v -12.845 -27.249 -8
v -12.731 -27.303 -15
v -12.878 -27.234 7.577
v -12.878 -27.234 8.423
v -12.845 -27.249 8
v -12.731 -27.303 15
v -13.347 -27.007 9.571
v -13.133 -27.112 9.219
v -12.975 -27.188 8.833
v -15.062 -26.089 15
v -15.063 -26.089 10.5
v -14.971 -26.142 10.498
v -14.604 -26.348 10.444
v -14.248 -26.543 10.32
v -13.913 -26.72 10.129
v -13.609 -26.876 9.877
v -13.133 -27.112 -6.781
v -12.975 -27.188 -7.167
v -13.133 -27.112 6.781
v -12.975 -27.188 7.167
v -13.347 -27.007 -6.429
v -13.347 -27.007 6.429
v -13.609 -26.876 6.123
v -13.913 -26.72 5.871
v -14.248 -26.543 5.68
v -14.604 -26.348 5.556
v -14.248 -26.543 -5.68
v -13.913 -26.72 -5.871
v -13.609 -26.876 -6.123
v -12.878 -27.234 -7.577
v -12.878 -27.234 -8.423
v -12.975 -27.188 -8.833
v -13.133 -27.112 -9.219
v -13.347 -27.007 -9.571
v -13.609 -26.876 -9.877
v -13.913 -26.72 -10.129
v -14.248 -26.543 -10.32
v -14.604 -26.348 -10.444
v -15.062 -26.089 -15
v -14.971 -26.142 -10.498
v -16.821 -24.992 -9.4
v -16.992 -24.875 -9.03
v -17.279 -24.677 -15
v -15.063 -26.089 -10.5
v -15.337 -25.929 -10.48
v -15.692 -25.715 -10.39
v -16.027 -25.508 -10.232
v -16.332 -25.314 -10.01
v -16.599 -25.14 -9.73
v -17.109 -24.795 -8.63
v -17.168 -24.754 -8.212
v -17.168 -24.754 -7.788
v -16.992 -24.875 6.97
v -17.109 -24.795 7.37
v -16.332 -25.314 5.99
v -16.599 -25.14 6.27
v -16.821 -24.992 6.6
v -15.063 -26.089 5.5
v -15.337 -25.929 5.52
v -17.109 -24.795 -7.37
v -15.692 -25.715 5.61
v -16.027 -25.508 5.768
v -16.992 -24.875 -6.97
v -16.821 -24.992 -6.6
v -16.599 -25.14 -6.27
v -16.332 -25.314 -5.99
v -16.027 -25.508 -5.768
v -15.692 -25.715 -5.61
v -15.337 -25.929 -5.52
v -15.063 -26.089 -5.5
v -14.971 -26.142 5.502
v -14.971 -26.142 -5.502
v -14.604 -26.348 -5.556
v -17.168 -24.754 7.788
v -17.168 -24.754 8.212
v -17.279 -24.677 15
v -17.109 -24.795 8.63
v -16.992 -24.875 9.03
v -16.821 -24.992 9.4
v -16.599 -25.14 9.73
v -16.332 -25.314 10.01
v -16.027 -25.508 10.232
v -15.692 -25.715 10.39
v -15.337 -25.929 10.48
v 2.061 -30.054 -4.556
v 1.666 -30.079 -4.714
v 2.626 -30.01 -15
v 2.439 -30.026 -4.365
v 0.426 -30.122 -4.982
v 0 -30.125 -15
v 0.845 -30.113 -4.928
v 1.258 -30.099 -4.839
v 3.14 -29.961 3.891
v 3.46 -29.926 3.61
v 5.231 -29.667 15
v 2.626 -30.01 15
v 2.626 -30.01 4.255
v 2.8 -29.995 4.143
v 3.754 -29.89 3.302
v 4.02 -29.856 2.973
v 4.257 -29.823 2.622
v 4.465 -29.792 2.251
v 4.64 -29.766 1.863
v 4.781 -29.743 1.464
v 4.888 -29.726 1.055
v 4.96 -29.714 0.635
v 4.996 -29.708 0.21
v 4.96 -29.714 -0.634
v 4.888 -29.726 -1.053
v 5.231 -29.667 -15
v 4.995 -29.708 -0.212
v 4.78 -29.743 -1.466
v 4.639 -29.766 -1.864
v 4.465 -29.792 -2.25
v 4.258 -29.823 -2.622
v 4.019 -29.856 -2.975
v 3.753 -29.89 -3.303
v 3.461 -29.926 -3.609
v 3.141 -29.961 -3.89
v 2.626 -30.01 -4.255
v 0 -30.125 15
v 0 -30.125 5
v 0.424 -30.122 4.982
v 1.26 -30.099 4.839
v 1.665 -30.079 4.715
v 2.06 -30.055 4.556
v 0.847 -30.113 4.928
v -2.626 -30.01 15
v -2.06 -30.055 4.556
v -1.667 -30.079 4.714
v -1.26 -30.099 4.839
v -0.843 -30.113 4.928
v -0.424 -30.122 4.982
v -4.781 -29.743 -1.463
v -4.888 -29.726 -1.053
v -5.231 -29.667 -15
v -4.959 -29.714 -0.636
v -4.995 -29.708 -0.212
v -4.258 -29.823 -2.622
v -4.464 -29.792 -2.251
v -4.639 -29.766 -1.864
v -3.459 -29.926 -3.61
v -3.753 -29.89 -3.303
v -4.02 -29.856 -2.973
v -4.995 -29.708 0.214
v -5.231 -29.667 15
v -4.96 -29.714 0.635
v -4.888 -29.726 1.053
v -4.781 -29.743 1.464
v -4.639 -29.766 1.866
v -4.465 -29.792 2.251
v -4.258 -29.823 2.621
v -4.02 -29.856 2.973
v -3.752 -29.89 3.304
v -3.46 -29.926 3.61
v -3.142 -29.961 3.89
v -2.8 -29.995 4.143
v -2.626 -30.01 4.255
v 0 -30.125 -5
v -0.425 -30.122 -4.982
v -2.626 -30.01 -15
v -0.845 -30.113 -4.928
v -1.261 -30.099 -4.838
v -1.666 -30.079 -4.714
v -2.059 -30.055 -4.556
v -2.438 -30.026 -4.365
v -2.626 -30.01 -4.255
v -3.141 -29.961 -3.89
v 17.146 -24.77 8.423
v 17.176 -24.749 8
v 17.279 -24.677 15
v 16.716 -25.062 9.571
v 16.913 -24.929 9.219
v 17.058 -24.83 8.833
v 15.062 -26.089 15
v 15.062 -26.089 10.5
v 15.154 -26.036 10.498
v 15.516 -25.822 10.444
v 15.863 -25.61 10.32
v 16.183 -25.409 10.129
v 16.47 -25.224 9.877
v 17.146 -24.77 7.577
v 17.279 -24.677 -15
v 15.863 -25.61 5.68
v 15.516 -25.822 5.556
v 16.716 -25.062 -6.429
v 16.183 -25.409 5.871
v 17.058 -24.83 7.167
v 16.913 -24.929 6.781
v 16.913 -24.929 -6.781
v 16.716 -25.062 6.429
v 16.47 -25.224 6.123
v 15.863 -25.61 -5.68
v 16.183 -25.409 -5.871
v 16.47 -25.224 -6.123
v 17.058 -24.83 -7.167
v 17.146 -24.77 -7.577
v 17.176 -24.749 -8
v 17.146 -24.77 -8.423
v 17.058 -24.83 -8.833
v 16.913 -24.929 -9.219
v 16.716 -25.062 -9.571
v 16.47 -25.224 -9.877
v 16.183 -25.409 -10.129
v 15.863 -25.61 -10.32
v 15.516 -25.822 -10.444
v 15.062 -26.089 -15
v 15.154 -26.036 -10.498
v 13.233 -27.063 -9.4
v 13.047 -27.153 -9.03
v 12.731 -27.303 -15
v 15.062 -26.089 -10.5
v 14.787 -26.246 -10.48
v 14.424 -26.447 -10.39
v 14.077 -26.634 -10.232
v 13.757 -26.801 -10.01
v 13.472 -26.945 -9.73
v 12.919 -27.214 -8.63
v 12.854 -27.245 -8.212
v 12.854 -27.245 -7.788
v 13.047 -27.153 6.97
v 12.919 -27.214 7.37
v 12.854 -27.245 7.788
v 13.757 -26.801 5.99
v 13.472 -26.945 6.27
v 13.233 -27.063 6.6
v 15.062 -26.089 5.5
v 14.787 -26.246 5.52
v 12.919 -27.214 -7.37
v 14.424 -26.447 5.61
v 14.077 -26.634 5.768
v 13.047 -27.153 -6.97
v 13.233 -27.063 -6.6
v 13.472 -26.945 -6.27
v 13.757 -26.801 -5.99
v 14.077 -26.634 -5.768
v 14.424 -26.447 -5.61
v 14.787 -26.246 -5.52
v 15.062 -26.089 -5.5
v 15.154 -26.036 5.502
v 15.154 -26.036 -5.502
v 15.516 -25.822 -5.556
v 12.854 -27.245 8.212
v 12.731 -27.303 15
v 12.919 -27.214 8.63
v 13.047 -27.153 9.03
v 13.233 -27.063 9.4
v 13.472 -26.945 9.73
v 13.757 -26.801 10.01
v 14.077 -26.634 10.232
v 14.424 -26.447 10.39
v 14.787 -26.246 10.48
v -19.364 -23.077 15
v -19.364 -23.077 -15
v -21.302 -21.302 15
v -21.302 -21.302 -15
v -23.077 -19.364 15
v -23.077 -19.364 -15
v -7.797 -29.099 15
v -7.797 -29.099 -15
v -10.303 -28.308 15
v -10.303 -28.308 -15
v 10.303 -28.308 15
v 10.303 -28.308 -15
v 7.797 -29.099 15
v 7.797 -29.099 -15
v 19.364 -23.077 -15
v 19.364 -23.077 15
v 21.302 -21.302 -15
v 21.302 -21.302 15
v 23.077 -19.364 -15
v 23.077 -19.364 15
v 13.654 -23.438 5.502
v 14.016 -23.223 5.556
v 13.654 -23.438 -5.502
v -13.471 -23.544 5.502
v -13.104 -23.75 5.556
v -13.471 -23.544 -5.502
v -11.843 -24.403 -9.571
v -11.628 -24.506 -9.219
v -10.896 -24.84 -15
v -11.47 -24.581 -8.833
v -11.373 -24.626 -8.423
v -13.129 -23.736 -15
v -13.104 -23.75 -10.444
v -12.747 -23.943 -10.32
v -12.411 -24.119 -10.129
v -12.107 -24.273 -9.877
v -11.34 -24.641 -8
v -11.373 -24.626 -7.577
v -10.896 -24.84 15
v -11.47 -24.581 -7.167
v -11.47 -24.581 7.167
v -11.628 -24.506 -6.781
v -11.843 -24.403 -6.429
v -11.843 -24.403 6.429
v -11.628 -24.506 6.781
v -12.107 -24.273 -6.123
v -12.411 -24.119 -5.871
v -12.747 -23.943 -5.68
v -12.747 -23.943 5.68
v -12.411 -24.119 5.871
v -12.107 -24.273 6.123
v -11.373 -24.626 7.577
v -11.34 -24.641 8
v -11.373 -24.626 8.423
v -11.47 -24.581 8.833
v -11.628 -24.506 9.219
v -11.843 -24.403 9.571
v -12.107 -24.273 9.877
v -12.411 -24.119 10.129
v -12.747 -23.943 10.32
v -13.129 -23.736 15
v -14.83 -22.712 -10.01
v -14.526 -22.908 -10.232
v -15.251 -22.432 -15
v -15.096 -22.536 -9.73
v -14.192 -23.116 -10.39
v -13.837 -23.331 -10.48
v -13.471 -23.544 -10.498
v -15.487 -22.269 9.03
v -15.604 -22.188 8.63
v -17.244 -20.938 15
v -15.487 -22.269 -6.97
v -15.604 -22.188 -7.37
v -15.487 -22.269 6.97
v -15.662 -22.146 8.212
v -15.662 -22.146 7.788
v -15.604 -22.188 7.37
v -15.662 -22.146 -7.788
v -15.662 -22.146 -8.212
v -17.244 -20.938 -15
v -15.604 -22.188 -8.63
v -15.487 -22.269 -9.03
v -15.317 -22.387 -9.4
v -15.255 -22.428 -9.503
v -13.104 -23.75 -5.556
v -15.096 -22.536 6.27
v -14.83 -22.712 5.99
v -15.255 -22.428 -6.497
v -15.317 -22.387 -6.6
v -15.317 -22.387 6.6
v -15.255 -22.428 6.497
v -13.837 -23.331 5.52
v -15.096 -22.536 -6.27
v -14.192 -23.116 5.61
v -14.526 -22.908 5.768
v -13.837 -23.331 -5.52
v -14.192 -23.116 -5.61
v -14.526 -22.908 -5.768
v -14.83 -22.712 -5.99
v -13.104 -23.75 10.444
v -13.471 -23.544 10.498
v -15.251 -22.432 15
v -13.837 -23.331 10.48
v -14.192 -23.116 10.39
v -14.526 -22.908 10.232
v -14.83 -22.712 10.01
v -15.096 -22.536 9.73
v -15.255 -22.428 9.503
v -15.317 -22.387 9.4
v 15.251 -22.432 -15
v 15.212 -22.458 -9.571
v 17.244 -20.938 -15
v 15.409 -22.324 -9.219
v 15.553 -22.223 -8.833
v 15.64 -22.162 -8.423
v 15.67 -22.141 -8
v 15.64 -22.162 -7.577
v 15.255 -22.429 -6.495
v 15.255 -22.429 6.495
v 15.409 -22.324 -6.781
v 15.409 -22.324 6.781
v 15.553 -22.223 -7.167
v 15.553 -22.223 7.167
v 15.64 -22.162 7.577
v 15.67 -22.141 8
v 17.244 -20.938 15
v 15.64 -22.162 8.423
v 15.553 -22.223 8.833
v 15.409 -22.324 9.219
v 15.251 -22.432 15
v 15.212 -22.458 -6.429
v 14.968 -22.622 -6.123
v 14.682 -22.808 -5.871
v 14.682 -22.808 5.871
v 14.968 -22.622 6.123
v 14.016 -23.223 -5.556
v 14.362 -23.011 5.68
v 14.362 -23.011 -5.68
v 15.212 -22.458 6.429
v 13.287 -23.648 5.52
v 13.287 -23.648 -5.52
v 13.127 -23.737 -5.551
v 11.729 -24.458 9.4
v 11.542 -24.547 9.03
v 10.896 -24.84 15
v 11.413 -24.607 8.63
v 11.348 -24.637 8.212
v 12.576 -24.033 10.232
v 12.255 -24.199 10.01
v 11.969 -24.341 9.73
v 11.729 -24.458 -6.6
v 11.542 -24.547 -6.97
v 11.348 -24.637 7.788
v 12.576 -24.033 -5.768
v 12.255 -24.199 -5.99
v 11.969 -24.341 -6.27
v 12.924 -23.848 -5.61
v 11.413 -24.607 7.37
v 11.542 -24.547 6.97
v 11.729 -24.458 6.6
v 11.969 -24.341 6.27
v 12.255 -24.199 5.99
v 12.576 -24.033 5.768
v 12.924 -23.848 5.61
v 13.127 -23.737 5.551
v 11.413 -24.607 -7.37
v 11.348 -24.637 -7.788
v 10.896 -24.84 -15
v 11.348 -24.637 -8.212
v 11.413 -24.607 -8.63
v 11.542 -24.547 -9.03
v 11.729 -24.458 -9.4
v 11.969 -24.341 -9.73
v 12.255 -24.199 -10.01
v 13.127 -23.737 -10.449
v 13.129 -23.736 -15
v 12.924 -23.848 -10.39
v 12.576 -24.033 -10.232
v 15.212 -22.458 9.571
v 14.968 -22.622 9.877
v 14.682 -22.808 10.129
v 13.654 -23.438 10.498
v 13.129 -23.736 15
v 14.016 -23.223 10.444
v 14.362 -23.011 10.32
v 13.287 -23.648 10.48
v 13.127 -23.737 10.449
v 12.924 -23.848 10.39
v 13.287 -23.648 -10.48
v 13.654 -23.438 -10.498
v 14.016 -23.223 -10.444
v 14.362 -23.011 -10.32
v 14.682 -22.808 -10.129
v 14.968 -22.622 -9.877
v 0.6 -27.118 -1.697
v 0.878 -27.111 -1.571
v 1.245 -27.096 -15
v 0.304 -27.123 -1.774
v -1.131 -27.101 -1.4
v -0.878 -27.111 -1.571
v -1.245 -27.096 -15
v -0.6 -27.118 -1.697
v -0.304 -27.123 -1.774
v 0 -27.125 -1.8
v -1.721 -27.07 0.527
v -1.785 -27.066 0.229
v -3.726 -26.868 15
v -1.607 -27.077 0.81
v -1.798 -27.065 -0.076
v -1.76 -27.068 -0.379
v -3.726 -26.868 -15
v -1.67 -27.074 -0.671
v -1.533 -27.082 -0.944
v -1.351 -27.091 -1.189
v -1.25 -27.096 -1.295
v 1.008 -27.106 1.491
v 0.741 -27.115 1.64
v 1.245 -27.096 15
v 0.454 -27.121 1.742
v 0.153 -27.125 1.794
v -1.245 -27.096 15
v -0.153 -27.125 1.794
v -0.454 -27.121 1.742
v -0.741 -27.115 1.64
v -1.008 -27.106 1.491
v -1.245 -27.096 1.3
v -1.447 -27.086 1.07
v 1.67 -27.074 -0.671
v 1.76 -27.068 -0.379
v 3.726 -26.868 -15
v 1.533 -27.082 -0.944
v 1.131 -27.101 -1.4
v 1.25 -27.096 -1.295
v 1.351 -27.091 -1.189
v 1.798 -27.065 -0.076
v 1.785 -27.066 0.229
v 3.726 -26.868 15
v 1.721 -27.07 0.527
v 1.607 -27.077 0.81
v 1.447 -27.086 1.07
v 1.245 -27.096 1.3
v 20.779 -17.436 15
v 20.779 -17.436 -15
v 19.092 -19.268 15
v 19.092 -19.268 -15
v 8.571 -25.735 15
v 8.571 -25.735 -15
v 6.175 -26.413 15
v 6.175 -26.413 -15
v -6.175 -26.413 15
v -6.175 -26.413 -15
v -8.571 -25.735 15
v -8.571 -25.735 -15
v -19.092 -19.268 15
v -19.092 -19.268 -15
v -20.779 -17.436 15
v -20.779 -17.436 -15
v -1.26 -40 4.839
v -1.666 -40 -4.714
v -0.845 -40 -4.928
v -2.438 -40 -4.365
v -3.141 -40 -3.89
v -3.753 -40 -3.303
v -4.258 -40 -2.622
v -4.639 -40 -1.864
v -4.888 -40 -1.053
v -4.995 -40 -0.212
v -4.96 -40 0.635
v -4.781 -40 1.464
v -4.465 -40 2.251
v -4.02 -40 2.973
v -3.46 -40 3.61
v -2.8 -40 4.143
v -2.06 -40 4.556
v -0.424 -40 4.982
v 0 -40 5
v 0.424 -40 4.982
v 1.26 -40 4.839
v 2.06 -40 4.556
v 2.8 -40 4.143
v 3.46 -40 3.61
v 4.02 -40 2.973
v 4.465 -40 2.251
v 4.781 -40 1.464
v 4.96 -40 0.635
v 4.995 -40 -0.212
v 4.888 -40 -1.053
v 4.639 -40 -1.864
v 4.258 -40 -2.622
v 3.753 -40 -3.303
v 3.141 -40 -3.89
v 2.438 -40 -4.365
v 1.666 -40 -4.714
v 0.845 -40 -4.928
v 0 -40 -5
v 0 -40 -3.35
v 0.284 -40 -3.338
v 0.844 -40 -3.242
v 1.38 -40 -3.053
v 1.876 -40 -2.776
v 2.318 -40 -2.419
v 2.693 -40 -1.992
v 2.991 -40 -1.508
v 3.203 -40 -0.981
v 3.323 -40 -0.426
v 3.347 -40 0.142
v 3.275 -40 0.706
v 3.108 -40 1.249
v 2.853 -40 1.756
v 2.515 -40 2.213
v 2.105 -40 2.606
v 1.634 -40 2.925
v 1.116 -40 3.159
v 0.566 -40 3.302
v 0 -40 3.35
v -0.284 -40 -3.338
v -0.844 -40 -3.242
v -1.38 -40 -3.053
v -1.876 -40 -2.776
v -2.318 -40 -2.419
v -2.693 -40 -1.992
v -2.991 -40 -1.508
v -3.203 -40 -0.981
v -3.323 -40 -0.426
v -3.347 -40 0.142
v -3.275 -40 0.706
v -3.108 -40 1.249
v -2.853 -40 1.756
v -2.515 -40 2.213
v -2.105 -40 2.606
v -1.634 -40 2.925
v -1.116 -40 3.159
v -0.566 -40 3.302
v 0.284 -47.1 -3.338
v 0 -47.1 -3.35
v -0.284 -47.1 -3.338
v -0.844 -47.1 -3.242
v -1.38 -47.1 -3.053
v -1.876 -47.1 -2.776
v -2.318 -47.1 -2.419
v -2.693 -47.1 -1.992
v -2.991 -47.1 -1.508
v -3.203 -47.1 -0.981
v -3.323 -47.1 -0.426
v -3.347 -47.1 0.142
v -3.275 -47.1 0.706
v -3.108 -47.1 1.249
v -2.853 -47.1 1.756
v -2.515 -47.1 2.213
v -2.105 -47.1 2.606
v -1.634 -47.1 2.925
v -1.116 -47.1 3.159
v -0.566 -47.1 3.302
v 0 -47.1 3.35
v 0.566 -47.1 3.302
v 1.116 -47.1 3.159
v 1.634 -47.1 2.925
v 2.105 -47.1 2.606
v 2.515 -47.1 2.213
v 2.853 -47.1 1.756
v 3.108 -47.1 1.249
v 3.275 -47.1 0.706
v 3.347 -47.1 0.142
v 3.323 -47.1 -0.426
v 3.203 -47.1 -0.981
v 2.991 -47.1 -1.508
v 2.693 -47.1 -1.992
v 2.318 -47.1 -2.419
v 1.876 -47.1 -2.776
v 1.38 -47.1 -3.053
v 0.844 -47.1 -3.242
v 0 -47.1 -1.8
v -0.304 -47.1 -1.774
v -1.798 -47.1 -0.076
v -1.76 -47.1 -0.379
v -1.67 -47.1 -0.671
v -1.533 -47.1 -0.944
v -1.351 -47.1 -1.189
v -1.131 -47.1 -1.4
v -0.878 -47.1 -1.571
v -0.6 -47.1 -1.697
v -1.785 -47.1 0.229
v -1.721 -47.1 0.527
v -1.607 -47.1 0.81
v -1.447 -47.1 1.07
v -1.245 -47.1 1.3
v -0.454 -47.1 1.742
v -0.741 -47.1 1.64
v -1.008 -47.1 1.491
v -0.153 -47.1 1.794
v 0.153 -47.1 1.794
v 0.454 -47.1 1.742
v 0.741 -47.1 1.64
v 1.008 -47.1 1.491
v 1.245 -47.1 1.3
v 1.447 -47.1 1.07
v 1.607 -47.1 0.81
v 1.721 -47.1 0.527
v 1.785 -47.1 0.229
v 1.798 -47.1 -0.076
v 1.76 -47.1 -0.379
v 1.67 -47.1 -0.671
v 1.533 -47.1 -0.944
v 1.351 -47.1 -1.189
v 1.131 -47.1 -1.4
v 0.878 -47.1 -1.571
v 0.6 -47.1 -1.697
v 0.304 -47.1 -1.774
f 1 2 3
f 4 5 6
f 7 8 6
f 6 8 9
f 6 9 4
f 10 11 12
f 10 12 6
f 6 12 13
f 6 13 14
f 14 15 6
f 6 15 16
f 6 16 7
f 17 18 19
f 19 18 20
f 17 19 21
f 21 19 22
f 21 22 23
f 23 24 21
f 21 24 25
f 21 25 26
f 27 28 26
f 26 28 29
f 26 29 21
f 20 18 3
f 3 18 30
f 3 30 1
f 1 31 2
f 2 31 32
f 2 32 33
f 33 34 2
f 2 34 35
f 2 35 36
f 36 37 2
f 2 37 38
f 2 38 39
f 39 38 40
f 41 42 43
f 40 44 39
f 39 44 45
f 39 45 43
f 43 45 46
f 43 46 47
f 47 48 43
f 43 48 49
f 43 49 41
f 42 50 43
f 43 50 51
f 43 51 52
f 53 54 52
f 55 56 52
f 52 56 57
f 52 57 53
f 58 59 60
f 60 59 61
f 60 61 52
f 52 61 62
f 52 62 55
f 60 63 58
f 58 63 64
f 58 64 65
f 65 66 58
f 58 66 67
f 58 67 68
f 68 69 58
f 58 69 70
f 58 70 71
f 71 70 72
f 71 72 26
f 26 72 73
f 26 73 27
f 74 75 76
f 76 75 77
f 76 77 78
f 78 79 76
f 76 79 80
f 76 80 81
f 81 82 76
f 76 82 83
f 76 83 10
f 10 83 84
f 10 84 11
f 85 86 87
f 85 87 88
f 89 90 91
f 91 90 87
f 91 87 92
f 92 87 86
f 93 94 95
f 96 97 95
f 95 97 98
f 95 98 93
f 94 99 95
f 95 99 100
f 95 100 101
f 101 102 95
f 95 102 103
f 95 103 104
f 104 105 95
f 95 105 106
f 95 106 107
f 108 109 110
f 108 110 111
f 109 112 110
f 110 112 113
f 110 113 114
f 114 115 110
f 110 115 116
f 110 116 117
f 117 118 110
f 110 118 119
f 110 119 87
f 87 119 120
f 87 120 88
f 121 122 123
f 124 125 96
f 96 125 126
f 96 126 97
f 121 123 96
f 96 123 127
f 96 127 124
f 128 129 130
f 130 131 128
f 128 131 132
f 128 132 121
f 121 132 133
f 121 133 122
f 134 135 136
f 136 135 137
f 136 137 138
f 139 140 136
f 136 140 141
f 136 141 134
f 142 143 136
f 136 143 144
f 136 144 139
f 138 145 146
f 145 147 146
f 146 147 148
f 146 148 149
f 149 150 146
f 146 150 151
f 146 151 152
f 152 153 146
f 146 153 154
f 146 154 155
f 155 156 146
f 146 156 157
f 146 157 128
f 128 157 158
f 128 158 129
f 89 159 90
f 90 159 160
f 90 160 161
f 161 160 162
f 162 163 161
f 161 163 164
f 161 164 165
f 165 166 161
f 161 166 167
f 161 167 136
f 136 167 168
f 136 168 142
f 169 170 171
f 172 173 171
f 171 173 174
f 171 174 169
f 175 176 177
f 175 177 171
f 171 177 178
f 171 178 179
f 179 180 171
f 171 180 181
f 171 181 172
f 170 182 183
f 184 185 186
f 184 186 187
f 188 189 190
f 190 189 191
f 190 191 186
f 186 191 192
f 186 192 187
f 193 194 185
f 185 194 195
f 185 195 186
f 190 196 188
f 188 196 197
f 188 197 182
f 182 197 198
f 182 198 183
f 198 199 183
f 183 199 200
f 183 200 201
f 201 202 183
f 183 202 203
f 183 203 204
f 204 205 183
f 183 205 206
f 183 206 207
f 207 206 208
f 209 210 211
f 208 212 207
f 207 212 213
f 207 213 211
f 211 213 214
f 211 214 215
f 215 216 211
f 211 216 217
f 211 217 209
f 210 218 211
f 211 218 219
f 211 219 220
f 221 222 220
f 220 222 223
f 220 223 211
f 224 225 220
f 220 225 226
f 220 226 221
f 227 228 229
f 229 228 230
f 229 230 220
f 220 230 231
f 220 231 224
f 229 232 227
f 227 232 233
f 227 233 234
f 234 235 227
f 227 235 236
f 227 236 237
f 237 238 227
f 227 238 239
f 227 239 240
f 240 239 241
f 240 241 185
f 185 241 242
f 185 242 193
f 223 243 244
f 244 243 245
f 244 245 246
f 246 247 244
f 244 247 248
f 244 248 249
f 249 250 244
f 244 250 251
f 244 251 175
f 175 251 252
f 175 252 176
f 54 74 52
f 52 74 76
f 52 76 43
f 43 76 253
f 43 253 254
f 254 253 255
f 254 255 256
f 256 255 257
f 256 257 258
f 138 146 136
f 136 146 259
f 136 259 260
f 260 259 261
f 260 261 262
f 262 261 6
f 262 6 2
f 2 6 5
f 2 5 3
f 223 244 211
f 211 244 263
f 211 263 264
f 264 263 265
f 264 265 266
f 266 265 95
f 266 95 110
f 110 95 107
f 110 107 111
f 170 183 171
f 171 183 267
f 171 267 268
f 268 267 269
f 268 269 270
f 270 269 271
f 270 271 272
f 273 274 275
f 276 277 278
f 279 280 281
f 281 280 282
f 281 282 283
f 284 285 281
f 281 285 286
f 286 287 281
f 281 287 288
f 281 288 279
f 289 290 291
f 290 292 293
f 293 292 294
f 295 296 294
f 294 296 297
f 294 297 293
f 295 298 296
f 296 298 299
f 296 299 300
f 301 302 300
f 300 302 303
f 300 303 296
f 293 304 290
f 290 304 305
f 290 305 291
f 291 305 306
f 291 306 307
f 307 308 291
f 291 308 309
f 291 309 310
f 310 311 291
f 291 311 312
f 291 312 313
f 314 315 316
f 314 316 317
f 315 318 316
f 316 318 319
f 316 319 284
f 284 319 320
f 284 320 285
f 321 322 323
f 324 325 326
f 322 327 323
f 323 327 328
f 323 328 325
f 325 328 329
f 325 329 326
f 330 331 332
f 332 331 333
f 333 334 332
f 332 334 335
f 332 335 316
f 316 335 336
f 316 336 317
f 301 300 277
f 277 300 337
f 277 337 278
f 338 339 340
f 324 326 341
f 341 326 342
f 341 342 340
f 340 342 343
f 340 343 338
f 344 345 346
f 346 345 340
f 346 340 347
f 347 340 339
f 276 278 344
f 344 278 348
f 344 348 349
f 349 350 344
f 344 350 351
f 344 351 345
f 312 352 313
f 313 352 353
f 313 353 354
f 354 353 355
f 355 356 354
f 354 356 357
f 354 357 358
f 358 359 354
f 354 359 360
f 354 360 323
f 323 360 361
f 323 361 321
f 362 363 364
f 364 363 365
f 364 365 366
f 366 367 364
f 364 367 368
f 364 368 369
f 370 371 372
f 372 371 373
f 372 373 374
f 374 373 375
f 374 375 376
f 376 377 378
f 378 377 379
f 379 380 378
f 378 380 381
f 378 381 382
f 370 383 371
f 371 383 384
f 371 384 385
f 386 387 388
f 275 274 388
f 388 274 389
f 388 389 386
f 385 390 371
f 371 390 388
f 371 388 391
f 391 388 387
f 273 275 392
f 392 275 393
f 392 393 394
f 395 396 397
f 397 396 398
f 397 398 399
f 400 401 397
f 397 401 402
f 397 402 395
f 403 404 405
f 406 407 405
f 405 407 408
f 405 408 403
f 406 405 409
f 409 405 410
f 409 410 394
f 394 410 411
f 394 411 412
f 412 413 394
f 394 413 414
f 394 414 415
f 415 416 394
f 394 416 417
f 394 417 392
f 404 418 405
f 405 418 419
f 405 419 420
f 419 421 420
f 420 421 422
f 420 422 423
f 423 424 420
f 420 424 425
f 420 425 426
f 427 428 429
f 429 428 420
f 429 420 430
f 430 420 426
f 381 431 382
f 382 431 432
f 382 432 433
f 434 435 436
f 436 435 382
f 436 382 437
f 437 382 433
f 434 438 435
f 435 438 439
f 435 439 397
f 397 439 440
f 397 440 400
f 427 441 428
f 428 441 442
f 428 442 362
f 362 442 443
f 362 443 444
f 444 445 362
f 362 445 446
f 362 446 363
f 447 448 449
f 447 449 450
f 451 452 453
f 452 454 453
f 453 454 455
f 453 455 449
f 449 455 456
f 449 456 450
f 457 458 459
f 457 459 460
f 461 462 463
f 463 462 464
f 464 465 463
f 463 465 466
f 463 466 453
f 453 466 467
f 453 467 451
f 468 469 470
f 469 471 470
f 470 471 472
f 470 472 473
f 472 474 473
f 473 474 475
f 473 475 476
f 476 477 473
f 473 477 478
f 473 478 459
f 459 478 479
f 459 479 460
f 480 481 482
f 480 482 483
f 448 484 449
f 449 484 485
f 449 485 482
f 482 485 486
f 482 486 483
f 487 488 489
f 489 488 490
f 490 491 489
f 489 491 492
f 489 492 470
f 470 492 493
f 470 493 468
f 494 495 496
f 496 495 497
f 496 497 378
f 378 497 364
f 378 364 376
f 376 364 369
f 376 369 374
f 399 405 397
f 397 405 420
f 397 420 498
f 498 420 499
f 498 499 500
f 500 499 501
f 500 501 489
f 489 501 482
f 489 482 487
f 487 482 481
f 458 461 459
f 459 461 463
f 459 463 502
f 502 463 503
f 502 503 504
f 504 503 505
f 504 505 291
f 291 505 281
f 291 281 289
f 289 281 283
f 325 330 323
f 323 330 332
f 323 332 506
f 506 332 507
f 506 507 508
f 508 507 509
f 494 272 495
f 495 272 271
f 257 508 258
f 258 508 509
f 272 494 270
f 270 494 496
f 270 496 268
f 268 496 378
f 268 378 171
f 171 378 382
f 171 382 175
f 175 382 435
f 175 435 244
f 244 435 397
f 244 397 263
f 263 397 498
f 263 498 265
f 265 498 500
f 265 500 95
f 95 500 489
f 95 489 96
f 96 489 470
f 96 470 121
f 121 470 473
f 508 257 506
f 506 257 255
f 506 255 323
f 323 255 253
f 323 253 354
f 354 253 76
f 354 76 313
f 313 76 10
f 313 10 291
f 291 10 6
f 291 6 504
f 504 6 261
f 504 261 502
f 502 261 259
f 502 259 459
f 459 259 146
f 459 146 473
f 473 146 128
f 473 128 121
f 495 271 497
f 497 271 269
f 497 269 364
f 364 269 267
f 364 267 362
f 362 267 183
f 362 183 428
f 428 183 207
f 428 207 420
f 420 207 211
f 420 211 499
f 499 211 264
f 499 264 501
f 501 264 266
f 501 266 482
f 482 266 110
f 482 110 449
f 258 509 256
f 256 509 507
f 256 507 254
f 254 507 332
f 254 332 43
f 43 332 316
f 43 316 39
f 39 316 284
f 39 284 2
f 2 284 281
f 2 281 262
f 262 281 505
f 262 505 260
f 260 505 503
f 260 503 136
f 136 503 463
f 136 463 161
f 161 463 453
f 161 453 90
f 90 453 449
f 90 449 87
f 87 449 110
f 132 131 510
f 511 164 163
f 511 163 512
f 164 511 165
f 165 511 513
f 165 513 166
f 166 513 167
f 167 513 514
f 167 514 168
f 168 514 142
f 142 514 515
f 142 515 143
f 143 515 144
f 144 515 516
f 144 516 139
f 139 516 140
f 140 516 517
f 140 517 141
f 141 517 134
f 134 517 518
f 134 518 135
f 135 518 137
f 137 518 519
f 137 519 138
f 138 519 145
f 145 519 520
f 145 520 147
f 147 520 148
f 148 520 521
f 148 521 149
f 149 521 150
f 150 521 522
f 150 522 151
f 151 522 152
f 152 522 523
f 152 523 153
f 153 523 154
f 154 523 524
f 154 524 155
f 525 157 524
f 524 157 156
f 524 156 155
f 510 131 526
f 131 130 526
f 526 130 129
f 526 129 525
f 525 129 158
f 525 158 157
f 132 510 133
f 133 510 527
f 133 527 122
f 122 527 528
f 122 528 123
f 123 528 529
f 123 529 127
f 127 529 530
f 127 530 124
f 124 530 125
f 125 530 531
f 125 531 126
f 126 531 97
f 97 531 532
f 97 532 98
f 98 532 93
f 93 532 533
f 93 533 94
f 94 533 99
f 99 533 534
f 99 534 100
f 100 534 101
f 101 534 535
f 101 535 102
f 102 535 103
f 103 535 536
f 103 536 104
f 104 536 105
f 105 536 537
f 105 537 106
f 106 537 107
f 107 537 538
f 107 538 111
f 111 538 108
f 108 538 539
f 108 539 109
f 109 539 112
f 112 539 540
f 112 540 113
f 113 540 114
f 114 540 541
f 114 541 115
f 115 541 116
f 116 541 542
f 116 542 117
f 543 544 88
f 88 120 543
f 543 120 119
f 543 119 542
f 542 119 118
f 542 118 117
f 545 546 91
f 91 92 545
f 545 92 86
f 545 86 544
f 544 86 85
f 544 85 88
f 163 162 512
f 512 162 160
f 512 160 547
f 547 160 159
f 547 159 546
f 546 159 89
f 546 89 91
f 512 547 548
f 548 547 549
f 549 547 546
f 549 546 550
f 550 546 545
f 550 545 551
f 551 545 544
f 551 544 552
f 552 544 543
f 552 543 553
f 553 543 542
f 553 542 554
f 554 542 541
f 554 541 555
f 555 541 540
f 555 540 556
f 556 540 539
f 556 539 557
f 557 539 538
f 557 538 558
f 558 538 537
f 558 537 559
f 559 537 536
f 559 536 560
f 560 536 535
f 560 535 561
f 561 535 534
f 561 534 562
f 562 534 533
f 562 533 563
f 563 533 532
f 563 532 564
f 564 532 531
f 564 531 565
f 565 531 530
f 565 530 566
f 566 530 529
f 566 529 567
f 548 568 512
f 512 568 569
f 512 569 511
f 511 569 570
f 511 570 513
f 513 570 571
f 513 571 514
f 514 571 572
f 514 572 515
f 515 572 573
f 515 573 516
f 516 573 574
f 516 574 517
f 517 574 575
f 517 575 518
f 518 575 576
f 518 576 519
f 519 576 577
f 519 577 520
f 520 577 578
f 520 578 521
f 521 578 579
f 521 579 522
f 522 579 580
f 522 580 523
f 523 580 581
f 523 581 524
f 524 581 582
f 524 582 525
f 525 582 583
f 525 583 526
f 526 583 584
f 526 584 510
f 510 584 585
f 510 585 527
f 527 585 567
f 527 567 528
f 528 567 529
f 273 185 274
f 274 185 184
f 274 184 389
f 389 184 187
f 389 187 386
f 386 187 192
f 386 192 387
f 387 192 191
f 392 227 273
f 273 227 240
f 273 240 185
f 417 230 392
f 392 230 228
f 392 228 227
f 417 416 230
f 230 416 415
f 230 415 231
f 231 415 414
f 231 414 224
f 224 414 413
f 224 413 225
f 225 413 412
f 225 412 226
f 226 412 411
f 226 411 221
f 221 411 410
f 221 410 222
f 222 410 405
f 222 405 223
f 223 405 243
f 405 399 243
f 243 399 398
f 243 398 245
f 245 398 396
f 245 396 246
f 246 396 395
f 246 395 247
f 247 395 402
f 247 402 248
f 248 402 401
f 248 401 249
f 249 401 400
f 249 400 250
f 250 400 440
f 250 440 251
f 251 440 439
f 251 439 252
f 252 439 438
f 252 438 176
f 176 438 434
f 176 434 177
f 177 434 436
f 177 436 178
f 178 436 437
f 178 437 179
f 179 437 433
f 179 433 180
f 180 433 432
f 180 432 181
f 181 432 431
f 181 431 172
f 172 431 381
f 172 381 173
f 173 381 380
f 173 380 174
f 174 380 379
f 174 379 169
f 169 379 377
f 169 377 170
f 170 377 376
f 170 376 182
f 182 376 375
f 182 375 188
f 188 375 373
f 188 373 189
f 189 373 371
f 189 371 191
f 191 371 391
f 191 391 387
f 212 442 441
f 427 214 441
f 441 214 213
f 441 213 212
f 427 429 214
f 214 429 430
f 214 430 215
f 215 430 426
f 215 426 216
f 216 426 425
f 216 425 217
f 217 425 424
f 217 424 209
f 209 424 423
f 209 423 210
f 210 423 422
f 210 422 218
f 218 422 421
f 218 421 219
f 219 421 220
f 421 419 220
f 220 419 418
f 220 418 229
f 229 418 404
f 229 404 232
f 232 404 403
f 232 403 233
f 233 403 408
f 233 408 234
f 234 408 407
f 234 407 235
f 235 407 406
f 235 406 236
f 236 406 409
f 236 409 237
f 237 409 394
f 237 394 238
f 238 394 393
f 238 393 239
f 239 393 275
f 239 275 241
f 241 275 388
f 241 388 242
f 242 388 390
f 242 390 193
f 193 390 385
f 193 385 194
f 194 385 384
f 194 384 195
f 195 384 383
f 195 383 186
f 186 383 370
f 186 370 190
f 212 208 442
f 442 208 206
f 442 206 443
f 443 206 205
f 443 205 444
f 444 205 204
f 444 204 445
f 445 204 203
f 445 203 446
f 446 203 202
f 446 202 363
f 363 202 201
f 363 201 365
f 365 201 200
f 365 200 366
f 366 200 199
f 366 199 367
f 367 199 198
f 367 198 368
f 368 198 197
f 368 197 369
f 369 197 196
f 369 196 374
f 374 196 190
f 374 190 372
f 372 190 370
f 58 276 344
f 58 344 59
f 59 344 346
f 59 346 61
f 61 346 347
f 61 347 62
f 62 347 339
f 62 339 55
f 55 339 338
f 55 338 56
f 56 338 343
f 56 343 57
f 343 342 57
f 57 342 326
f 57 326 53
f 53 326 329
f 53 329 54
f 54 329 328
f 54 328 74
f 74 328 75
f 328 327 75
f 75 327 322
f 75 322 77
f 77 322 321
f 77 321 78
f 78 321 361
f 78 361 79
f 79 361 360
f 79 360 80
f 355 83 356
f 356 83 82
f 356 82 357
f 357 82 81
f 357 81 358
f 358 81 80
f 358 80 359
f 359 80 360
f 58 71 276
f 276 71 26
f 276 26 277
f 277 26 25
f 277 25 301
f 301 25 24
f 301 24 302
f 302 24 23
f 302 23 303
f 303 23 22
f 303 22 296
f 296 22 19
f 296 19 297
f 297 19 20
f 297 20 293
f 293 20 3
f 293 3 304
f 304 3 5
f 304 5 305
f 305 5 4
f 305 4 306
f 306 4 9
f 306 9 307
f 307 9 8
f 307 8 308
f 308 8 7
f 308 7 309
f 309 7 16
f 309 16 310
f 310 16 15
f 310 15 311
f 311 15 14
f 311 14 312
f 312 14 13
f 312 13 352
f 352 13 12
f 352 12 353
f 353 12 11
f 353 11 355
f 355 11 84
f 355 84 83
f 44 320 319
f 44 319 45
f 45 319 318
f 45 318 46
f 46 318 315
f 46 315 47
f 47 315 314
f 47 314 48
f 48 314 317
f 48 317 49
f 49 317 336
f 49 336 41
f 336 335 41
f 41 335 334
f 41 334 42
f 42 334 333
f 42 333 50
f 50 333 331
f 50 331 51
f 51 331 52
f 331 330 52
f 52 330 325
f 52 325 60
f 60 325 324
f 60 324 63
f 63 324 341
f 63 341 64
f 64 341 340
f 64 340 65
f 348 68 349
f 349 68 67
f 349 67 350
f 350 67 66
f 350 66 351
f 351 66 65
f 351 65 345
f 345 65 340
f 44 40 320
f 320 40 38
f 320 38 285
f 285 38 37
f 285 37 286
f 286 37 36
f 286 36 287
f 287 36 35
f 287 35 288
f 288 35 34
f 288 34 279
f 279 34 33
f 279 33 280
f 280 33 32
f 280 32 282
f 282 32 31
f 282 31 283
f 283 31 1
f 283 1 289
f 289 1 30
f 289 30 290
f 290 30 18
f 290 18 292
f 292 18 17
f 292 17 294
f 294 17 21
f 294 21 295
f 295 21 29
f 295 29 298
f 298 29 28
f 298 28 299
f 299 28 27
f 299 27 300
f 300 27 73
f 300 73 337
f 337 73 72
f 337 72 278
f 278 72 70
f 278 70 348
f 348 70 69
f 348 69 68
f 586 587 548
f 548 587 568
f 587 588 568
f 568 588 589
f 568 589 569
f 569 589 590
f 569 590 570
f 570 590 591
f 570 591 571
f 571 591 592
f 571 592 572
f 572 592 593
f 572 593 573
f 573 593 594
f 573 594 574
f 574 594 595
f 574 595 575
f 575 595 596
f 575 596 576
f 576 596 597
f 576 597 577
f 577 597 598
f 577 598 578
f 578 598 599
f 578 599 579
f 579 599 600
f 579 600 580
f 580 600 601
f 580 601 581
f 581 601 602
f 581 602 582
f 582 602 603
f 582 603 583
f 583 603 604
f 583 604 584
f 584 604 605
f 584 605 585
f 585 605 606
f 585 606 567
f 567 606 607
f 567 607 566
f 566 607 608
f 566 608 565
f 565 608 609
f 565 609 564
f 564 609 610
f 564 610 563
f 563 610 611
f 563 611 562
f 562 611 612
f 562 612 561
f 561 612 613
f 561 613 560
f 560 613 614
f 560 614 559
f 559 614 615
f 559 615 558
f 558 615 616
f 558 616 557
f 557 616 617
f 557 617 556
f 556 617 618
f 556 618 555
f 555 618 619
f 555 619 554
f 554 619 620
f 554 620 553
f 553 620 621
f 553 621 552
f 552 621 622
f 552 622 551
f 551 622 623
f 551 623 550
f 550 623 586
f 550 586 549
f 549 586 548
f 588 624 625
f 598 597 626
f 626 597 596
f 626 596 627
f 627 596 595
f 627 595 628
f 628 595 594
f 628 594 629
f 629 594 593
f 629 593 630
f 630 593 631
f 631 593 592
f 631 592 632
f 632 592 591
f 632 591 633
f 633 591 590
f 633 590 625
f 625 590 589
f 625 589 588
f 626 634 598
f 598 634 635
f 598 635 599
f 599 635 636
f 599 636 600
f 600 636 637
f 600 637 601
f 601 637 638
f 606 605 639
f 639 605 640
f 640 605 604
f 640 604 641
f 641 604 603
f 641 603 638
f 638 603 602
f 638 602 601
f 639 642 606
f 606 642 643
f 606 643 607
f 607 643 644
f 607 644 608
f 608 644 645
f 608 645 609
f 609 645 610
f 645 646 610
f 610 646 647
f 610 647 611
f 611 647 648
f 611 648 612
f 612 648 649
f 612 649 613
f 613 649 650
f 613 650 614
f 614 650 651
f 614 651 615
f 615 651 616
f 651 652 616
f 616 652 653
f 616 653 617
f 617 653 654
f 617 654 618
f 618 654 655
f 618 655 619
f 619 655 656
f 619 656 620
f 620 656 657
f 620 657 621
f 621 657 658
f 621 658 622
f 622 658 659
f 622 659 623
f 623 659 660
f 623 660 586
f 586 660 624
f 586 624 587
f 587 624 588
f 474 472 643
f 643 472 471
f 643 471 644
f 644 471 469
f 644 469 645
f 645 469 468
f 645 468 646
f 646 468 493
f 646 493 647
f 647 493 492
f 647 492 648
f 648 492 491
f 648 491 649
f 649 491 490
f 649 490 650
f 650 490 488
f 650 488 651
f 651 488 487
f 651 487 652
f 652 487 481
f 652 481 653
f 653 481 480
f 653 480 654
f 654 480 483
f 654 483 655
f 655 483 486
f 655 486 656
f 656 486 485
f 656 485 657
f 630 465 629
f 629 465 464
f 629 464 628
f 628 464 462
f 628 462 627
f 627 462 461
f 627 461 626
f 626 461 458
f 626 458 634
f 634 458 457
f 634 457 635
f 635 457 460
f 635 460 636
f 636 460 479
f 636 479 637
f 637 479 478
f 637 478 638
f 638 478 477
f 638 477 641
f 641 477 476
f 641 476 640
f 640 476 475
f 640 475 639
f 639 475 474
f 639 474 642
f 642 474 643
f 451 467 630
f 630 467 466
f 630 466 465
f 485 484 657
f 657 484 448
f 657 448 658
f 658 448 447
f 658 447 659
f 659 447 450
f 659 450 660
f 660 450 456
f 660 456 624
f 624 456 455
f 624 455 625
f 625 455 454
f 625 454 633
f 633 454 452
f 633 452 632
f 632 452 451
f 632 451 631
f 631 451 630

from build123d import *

# Parameters (mm, degrees)
BOSS_EXTRUDE1_DEPTH = 15
BOSS_EXTRUDE2_REACH = 24.564
SKETCH2_R           = 5
SKETCH13_R          = 2.5
CUT_EXTRUDE2_DEPTH  = 27.563859895
SKETCH14_R          = 3.35
BOSS_EXTRUDE4_DEPTH = 7.1
SKETCH15_R          = 1.8
CUT_EXTRUDE3_DEPTH  = 30.664386187


with BuildPart() as part:
    # Sketch1 → Boss-Extrude1 (new body, symmetric)
    with BuildSketch(Plane.XY):
        with BuildLine():
            Line((23.077088849, -19.363976742), (20.77895552, -17.435613913))
            ThreePointArc((20.77895552, -17.435613913), (0, -27.125), (-20.77895552, -17.435613913))
            Line((-20.77895552, -17.435613913), (-23.077088849, -19.363976742))
            ThreePointArc((-23.077088849, -19.363976742), (0, -30.125), (23.077088849, -19.363976742))
        make_face()
    extrude(amount=BOSS_EXTRUDE1_DEPTH, both=True)

    # Sketch2 → Boss-Extrude2 (add, up to next)
    with BuildSketch(Plane(origin=(0, -40, 0), x_dir=(1, 0, 0), z_dir=(0, 1, 0)), mode=Mode.PRIVATE) as boss_extrude2_sk1:
        Circle(SKETCH2_R)
    boss_extrude2_tool1 = extrude(boss_extrude2_sk1.sketch, amount=BOSS_EXTRUDE2_REACH, mode=Mode.PRIVATE) - part.part
    add(boss_extrude2_tool1.solids().sort_by_distance((0, -40, 0))[0])

    # Sketch13 → Cut-Extrude2 (cut, through all)
    with BuildSketch(Plane(origin=(15.0625, -26.089015289, 0), x_dir=(-0.866025404, -0.5, 0), z_dir=(0.5, -0.866025404, 0))):
        with Locations((0, 8)):
            Circle(SKETCH13_R)
        with Locations((0, -8)):
            Circle(SKETCH13_R)
    cut_extrude2 = extrude(amount=-CUT_EXTRUDE2_DEPTH, mode=Mode.SUBTRACT)

    # Mirror1: Cut-Extrude2 across plane
    add(cut_extrude2.mirror(Plane(origin=(0, 0, 0), x_dir=(0, 0, 1), z_dir=(1, 0, 0))), mode=Mode.SUBTRACT)

    # Sketch14 → Boss-Extrude4 (add)
    with BuildSketch(Plane.XZ.offset(40)):
        Circle(SKETCH14_R)
    extrude(amount=BOSS_EXTRUDE4_DEPTH)

    # Sketch15 → Cut-Extrude3 (cut, through all)
    with BuildSketch(Plane.XZ.offset(47.1)):
        Circle(SKETCH15_R)
    extrude(amount=-CUT_EXTRUDE3_DEPTH, mode=Mode.SUBTRACT)


solid = part.part
